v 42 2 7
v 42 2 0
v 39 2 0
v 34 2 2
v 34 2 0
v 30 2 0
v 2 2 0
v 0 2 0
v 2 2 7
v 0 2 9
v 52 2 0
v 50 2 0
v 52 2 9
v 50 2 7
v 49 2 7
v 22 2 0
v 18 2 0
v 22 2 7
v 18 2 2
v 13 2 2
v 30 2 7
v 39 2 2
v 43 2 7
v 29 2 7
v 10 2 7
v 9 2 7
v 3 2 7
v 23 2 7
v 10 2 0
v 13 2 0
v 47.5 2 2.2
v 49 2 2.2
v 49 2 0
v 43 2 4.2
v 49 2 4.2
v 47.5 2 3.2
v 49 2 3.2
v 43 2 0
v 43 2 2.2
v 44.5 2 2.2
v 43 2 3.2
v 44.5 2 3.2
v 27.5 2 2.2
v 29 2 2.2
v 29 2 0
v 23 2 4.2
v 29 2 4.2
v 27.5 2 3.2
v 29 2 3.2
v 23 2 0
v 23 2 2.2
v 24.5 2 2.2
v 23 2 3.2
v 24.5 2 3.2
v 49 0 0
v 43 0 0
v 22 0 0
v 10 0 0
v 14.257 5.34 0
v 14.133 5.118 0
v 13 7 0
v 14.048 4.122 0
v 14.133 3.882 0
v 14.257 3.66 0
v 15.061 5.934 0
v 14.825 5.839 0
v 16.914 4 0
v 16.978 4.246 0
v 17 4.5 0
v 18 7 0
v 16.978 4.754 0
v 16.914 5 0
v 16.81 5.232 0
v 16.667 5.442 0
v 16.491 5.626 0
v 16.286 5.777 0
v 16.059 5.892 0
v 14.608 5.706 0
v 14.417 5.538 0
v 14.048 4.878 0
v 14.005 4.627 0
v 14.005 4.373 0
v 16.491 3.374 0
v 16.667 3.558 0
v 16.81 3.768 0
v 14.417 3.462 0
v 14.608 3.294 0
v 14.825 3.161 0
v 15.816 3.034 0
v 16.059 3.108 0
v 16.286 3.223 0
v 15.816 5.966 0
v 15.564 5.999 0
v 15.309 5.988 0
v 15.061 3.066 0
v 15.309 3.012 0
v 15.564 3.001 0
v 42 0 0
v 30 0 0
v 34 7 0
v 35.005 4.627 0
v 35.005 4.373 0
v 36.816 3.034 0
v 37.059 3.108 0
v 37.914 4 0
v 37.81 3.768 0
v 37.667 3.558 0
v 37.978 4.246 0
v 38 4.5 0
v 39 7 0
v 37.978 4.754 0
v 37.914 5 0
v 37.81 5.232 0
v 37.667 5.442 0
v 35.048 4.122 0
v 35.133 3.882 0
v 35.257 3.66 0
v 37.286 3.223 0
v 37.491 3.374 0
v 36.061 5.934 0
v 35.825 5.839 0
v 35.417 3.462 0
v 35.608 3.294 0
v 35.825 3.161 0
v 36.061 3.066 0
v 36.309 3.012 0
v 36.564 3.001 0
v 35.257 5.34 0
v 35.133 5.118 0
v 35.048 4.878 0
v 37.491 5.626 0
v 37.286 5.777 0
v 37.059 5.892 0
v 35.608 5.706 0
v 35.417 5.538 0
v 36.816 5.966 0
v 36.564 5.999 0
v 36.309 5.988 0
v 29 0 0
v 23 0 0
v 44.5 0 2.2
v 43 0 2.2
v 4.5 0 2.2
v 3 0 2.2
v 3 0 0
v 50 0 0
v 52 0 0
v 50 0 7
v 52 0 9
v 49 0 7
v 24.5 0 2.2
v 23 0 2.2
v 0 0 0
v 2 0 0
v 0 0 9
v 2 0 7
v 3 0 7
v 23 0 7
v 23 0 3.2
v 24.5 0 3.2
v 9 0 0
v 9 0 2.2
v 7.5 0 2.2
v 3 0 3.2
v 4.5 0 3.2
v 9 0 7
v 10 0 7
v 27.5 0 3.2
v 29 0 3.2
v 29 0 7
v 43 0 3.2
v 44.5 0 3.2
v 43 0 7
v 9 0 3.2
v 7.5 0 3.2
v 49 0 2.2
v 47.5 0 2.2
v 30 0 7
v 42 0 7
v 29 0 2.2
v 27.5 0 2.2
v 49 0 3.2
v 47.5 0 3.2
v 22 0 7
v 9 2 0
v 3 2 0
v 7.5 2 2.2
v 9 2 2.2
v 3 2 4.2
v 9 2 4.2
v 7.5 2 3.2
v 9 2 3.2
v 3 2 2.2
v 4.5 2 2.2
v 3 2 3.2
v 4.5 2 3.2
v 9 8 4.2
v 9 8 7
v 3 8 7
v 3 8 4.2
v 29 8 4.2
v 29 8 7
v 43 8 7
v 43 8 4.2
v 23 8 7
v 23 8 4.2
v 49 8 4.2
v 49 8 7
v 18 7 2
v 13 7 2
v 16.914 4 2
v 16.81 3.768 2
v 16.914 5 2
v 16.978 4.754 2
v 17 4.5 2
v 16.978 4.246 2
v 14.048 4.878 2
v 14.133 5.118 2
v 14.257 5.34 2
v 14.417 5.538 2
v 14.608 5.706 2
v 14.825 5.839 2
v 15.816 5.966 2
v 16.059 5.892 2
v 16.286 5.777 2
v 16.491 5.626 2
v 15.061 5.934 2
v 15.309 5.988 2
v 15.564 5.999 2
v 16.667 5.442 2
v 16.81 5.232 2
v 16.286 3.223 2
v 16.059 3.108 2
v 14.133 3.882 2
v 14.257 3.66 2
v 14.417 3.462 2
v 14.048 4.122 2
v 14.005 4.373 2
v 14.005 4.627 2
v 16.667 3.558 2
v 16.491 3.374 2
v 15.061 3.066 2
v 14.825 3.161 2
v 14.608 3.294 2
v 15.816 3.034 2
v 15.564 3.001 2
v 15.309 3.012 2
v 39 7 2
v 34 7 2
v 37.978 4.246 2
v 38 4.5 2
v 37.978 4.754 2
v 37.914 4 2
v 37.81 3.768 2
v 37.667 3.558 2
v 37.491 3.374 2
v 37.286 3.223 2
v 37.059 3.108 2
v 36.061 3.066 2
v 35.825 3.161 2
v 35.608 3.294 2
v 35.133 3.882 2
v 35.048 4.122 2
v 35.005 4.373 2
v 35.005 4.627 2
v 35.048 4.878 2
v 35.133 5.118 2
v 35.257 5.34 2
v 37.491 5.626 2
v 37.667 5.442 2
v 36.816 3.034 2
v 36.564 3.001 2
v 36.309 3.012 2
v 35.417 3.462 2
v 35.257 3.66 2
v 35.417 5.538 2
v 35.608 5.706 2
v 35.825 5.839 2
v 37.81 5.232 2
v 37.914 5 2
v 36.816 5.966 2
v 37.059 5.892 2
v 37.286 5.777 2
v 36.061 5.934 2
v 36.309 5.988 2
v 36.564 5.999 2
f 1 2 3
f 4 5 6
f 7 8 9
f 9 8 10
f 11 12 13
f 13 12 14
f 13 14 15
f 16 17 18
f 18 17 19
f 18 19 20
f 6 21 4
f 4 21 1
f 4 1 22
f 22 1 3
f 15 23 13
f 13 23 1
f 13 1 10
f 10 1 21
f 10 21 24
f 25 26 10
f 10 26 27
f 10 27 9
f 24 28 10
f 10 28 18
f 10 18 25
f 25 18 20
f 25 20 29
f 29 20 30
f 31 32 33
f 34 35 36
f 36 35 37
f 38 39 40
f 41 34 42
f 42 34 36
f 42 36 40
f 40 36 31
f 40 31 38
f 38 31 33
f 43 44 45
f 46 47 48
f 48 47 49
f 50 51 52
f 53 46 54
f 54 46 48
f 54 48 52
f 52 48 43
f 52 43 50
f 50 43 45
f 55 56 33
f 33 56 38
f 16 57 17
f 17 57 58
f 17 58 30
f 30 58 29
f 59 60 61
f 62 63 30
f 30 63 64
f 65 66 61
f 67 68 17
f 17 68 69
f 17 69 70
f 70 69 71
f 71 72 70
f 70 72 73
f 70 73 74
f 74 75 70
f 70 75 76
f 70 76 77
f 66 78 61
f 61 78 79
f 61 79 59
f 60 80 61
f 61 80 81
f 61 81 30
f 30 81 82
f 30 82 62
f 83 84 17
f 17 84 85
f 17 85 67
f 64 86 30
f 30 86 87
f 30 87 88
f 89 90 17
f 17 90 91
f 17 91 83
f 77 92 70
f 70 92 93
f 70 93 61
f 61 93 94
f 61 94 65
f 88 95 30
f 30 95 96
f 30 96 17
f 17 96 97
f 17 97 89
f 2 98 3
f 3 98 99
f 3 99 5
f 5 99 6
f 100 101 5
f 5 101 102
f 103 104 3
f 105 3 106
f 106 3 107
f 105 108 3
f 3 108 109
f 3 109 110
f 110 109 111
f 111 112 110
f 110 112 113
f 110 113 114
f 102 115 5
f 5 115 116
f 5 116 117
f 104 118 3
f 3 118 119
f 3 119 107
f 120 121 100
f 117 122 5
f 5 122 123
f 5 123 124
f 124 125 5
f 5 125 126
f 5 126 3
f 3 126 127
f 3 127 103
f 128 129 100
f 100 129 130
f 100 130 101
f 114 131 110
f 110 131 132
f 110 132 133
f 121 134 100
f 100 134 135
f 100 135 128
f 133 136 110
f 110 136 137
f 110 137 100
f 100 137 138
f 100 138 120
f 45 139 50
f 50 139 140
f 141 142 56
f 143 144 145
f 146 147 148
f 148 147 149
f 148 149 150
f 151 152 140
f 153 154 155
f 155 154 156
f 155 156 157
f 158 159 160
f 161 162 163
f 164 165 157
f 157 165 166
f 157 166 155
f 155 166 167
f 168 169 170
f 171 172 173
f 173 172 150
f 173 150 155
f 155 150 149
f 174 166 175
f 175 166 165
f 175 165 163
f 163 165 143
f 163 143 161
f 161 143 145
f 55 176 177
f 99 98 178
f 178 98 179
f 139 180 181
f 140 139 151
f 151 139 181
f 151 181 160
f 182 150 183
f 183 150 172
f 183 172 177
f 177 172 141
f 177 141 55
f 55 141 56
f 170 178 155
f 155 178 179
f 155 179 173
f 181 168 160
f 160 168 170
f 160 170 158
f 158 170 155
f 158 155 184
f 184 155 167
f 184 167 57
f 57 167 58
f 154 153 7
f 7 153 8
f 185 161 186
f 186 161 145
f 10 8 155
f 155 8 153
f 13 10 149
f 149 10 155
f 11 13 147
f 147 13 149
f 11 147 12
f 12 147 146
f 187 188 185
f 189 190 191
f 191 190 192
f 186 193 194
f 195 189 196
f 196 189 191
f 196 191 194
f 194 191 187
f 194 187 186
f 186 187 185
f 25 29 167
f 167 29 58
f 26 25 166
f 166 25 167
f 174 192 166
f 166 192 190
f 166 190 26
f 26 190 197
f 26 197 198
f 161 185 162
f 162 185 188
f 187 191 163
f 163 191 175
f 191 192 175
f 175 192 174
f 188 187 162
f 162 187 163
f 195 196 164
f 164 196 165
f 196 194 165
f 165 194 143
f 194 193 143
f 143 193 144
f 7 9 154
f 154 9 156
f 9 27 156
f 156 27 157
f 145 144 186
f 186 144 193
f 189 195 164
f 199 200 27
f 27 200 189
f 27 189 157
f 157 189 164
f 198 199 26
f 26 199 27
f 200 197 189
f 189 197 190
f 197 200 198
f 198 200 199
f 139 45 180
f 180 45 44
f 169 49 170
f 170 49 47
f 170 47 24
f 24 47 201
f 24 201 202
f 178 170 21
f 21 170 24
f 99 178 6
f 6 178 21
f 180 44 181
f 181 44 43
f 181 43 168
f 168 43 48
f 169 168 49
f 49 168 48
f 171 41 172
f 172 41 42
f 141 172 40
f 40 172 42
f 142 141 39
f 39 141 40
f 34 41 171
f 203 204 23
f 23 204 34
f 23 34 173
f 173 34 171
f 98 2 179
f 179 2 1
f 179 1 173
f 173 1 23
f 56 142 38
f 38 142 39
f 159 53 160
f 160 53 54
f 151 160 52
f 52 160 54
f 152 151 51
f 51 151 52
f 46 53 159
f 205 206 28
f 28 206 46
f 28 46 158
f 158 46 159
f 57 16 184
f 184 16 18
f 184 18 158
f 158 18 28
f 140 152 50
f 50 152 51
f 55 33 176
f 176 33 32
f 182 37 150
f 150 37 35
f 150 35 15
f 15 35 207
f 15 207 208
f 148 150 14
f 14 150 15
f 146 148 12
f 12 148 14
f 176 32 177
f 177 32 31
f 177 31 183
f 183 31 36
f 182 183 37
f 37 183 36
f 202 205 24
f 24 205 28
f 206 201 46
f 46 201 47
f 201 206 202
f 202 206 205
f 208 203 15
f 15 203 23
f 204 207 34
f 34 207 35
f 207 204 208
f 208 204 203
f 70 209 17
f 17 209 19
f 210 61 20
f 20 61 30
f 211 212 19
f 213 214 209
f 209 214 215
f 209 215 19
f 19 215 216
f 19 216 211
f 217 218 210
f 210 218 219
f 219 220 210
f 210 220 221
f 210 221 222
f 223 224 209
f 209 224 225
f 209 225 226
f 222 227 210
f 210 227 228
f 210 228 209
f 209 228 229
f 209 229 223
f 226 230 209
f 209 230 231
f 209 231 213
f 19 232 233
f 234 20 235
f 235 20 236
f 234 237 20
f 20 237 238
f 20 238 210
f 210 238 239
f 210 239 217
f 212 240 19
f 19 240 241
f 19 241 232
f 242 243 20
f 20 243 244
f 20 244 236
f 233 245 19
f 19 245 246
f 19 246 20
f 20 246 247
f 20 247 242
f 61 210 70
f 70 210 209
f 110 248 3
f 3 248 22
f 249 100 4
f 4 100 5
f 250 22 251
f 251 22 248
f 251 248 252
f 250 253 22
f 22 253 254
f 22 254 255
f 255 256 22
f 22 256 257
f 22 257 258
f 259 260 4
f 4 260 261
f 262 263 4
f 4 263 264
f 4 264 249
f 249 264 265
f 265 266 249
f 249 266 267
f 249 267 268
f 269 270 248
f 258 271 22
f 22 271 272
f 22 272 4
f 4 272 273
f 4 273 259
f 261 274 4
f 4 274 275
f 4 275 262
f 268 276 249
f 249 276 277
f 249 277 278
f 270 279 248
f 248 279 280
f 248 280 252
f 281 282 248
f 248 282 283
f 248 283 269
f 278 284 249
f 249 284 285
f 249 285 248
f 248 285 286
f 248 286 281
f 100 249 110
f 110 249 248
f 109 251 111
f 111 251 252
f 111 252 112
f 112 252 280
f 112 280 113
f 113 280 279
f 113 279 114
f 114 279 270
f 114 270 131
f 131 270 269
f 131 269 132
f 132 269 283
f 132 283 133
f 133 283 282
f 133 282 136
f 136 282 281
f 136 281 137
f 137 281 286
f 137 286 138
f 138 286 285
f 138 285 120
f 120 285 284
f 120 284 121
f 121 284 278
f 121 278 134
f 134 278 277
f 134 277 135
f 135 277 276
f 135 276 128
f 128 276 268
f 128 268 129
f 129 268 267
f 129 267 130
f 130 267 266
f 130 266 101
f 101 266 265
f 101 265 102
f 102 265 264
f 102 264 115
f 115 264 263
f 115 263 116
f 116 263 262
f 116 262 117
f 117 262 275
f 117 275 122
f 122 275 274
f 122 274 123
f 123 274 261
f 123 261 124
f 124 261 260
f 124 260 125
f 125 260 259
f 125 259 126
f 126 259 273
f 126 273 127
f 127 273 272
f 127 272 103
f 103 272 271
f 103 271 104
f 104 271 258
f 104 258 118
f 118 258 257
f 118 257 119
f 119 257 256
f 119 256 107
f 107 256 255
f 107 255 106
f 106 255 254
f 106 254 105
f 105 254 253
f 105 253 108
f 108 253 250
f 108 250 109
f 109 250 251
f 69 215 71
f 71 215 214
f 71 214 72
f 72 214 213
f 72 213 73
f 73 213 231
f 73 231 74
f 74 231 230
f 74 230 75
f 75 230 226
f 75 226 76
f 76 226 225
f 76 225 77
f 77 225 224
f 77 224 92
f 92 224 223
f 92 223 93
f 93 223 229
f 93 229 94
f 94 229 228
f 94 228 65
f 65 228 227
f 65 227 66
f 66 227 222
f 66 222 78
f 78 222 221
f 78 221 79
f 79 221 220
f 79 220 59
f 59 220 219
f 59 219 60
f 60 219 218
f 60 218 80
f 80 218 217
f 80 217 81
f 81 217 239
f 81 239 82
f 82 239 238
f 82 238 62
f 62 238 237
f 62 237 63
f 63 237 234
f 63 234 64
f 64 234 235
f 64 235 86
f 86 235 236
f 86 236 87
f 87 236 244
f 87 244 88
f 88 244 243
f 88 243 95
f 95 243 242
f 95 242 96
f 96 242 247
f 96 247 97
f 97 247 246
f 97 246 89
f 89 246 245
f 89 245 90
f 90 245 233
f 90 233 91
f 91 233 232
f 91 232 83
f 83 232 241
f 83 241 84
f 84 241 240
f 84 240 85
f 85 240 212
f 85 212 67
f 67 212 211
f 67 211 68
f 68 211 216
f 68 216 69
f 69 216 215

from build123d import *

# Parameters (mm, degrees)
SKETCH_1_W             = 52
SKETCH_1_H             = 9
EXTRUDE_1_DEPTH        = 2
SKETCH_1_5_W           = 1
SKETCH_1_5_H           = 7
SKETCH_1_5_W_2         = 1.5
SKETCH_1_5_H_2         = 1
CUT_EXTRUDE_2_DEPTH    = 53.810983706
EXTRUDE_START          = 2
SKETCH_1_6_W           = 6
SKETCH_1_6_H           = 2.8
EXTRUDE_2_DEPTH        = 6
PATTERN_LINEAR_1_COUNT = 3
PATTERN_LINEAR_1_PITCH = 20
SKETCH_1_7_W           = 5
SKETCH_1_7_H           = 2
EXTRUDE_3_DEPTH        = 5
SKETCH_2_R             = 1.5
CUT_EXTRUDE_3_DEPTH    = 54.075418039


with BuildPart() as part:
    # 草图1 → 凸台-拉伸1 (new body)
    with BuildSketch(Plane(origin=(0, 0, 0), x_dir=(1, 0, 0), z_dir=(0, 1, 0))):
        with Locations((26, -4.5)):
            Rectangle(SKETCH_1_W, SKETCH_1_H)
    extrude(amount=EXTRUDE_1_DEPTH)

    # 草图1<5> → 切除-拉伸2 (cut, through all)
    with BuildSketch(Plane(origin=(0, 0, 0), x_dir=(1, 0, 0), z_dir=(0, 1, 0))):
        with Locations((9.5, -3.5)):
            Rectangle(SKETCH_1_5_W, SKETCH_1_5_H)
        with Locations((2.5, -3.5)):
            Rectangle(SKETCH_1_5_W, SKETCH_1_5_H)
        with Locations((3.75, -2.7)):
            Rectangle(SKETCH_1_5_W_2, SKETCH_1_5_H_2)
        with Locations((8.25, -2.7)):
            Rectangle(SKETCH_1_5_W_2, SKETCH_1_5_H_2)
    cut_extrude_2 = extrude(amount=CUT_EXTRUDE_2_DEPTH, mode=Mode.SUBTRACT)

    # 草图1<6> → 凸台-拉伸2 (add)
    with BuildSketch(Plane(origin=(0, 0, 0), x_dir=(1, 0, 0), z_dir=(0, 1, 0)).offset(EXTRUDE_START)):
        with Locations((6, -5.6)):
            Rectangle(SKETCH_1_6_W, SKETCH_1_6_H)
    extrude_2 = extrude(amount=EXTRUDE_2_DEPTH)

    # 阵列(线性)1: 切除-拉伸2, 凸台-拉伸2 ×3
    with Locations(*[(i * PATTERN_LINEAR_1_PITCH, 0, 0) for i in range(1, PATTERN_LINEAR_1_COUNT)]):
        add(cut_extrude_2, mode=Mode.SUBTRACT)
        add(extrude_2)

    # 草图1<7> → 凸台-拉伸3 (add)
    with BuildSketch(Plane(origin=(0, 0, 0), x_dir=(1, 0, 0), z_dir=(0, 1, 0)).offset(EXTRUDE_START)):
        with Locations((15.5, -1)):
            Rectangle(SKETCH_1_7_W, SKETCH_1_7_H)
        with Locations((36.5, -1)):
            Rectangle(SKETCH_1_7_W, SKETCH_1_7_H)
    extrude(amount=EXTRUDE_3_DEPTH)

    # 草图2 → 切除-拉伸3 (cut, through all)
    with BuildSketch(Plane.XY.offset(2)):
        with Locations((36.5, 4.5)):
            Circle(SKETCH_2_R)
        with Locations((15.5, 4.5)):
            Circle(SKETCH_2_R)
    extrude(amount=-CUT_EXTRUDE_3_DEPTH, mode=Mode.SUBTRACT)


solid = part.part
